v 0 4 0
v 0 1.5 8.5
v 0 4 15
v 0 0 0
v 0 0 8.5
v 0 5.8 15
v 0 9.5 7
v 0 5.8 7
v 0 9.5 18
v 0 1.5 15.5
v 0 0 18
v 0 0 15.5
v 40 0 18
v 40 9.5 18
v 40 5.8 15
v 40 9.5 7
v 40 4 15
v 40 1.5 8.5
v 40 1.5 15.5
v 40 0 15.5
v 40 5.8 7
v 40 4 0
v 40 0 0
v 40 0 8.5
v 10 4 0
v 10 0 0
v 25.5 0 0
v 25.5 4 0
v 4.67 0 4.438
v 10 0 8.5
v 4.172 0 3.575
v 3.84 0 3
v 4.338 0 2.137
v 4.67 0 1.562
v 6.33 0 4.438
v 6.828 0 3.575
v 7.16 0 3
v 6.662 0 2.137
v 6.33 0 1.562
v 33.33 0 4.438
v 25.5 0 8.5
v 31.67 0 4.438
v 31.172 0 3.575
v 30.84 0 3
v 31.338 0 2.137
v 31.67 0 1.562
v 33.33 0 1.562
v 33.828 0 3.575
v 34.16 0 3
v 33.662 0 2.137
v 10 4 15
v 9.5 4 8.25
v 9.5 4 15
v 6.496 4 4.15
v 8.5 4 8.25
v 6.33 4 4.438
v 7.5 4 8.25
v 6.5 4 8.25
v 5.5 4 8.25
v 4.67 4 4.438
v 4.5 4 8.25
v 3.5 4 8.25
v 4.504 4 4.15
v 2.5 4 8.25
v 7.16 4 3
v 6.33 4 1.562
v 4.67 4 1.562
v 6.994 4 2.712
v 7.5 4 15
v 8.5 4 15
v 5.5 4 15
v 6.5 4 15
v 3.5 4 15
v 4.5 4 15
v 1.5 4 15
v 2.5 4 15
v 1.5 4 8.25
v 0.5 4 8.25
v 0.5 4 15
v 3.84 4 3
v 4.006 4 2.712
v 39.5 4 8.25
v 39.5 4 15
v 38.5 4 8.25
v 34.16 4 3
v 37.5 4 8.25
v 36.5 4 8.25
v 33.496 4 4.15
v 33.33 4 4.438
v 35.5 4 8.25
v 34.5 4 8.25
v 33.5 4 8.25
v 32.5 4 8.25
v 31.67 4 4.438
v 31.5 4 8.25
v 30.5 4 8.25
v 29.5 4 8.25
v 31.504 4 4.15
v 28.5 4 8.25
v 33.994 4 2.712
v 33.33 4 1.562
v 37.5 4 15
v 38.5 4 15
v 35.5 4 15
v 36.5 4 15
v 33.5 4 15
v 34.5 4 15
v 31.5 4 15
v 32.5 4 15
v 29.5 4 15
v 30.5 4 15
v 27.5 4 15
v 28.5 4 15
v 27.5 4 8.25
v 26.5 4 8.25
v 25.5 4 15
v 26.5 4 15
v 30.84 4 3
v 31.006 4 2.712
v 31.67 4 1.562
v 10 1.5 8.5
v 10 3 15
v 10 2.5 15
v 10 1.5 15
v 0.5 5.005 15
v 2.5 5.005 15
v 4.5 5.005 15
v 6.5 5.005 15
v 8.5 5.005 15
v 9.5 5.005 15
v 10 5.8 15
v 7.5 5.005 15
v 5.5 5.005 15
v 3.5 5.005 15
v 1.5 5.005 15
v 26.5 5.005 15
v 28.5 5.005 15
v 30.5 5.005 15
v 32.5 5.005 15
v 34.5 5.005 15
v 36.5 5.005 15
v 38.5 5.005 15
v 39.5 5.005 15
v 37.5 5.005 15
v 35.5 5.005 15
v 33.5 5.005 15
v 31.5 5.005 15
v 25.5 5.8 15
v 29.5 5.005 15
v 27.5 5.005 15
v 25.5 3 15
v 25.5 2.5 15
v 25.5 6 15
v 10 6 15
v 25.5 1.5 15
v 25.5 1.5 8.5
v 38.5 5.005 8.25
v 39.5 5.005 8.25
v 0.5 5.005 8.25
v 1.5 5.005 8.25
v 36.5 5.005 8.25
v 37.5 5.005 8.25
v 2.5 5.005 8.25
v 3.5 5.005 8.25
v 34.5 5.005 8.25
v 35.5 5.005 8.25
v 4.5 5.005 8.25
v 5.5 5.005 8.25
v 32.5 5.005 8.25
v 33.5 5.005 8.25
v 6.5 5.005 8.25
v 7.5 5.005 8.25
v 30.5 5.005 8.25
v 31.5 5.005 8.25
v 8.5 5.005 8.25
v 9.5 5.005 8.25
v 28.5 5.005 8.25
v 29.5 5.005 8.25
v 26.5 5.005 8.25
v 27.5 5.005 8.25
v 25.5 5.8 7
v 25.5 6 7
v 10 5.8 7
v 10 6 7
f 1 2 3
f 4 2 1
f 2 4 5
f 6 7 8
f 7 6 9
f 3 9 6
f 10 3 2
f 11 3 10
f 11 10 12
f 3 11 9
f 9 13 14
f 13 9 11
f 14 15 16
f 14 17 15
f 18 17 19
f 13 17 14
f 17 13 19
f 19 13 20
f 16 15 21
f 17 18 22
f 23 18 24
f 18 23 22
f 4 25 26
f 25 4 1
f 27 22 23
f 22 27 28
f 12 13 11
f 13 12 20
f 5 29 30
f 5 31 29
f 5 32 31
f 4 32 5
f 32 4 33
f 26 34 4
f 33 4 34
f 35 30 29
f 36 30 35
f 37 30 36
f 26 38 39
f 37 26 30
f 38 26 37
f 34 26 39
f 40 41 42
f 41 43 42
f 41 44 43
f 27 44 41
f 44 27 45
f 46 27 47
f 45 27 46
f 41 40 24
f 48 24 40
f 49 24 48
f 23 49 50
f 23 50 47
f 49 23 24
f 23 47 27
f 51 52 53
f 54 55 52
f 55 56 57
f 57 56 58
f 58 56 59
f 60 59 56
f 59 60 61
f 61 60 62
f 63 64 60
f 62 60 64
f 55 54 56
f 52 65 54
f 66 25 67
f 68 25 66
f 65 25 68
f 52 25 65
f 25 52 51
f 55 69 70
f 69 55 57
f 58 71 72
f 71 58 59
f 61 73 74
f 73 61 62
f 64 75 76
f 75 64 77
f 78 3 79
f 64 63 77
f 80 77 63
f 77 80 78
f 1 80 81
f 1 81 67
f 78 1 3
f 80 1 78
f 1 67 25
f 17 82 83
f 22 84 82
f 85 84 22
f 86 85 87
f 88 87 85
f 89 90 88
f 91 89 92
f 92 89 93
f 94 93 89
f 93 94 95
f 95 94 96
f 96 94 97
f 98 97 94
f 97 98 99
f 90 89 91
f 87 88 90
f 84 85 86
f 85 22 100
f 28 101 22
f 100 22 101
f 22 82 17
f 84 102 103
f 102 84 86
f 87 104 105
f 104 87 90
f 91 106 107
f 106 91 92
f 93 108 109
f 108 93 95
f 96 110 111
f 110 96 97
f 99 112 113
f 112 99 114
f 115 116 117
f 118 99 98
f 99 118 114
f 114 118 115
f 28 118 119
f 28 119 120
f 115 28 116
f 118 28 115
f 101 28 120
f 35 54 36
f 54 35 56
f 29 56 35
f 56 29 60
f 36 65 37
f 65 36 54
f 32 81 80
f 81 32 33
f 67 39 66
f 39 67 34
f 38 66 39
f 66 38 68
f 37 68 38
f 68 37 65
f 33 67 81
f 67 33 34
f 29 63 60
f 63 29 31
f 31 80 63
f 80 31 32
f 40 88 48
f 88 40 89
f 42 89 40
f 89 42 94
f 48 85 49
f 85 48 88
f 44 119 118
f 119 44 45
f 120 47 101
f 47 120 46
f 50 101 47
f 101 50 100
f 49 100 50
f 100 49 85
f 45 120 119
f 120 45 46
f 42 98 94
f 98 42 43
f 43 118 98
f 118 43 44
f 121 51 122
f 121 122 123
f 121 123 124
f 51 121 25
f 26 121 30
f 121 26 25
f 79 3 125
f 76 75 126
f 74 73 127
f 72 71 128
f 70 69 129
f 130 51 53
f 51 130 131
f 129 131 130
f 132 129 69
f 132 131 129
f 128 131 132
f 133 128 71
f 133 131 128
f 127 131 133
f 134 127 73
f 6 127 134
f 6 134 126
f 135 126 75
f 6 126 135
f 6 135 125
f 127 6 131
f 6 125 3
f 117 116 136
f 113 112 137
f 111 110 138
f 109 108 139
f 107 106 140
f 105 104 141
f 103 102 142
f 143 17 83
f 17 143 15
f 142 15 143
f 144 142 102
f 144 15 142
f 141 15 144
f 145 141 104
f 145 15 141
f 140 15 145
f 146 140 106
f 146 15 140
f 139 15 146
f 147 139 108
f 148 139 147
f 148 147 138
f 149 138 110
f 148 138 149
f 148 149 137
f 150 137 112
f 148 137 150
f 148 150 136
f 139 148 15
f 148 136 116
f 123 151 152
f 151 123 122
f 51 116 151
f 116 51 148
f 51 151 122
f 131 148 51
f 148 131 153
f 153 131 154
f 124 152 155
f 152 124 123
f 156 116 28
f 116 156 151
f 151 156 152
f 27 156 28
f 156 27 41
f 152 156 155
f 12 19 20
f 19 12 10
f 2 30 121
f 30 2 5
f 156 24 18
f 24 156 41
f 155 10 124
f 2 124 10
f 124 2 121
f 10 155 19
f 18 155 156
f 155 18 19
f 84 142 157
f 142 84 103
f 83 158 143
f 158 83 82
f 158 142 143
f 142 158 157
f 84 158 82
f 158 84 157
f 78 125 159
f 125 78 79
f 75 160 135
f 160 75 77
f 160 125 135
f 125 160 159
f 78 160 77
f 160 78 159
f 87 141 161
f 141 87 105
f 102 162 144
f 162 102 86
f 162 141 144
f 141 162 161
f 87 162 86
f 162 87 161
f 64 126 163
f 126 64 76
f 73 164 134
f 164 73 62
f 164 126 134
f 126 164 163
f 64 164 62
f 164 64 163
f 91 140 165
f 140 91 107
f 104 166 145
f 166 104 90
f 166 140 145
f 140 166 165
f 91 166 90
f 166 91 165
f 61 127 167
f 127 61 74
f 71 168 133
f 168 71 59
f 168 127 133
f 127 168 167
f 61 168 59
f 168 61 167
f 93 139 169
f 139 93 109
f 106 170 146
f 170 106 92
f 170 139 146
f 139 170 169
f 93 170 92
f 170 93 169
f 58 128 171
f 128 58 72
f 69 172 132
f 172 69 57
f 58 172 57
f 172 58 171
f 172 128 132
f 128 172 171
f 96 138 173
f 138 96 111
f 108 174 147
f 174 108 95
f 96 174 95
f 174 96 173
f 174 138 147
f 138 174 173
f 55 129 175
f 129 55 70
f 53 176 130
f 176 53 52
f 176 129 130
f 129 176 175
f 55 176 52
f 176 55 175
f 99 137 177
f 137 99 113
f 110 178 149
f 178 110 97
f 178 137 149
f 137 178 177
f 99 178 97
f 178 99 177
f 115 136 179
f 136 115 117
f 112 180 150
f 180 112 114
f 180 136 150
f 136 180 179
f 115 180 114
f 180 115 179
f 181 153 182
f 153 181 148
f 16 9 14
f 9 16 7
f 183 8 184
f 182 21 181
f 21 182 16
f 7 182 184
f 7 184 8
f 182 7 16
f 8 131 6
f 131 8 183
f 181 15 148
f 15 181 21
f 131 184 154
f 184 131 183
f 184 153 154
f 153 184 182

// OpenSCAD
// how many teeth on each side
teeth = 8;

// width of the belt in mm incl clearance (use 6.25 for typical GT2 belt)
belt_width = 7.5;

// thickness of the belt in mm (use 1.5 for GT2 belt)
belt_thickness = 1.5;

// belt pitch in mm (use 2.0 for GT2 belt)
pitch = 2.0;

// this controls the strength of the bracket 
shell = 1.5;

/* [Hidden] */
cutout_width = 6 + belt_thickness + shell;
len = 2*teeth*pitch + cutout_width;
round_corner_epsilon = 1;
epsilon = 0.01;


module clipTop()
{
    difference()
    {
      
    cube([40,4,18]);
 
    translate([5.5,1,3])
    rotate([90,0,0])
    cylinder(r=1.66, h=10, center=true);
    
    translate([32.5,1,3])
    rotate([90,0,0])
    cylinder(r=1.66, h=10, center=true);

    translate([10,0,0])
    cube([15.5,6,15]);
        
         translate([0,-5.0,8.5])
          cube([40,6.5,7.0]); 
   
    }
}

module clipBottom()
{
     difference()
    {
        union()
        {
    translate([0,-2.5,15])  //back wall    
    cube([40,7,3]); 
    translate([0,0.8,7]) //bottom      
    cube([40,3.7,8]);
    
    translate([20,-3,12])
    // belt teeth
	for(i=[1:1:teeth]) {

		// left side
		color([1,0, 0])
		translate([len/2 + pitch/4 - i*pitch, shell + belt_thickness/2, 0])
			cube([pitch/2, belt_thickness + epsilon, belt_width], center=true);

		// right side 
		color([1,0, 0])
		translate([-len/2 - pitch/4 + i*pitch, shell + belt_thickness/2, 0])
			cube([pitch/2, belt_thickness + epsilon, belt_width], center=true);
	};
    

}
  

    translate([10,-2,0]) //bottom hole
    cube([15.5,3,15]);
}
}

clipTop();
translate([0,5,0])
clipBottom();
